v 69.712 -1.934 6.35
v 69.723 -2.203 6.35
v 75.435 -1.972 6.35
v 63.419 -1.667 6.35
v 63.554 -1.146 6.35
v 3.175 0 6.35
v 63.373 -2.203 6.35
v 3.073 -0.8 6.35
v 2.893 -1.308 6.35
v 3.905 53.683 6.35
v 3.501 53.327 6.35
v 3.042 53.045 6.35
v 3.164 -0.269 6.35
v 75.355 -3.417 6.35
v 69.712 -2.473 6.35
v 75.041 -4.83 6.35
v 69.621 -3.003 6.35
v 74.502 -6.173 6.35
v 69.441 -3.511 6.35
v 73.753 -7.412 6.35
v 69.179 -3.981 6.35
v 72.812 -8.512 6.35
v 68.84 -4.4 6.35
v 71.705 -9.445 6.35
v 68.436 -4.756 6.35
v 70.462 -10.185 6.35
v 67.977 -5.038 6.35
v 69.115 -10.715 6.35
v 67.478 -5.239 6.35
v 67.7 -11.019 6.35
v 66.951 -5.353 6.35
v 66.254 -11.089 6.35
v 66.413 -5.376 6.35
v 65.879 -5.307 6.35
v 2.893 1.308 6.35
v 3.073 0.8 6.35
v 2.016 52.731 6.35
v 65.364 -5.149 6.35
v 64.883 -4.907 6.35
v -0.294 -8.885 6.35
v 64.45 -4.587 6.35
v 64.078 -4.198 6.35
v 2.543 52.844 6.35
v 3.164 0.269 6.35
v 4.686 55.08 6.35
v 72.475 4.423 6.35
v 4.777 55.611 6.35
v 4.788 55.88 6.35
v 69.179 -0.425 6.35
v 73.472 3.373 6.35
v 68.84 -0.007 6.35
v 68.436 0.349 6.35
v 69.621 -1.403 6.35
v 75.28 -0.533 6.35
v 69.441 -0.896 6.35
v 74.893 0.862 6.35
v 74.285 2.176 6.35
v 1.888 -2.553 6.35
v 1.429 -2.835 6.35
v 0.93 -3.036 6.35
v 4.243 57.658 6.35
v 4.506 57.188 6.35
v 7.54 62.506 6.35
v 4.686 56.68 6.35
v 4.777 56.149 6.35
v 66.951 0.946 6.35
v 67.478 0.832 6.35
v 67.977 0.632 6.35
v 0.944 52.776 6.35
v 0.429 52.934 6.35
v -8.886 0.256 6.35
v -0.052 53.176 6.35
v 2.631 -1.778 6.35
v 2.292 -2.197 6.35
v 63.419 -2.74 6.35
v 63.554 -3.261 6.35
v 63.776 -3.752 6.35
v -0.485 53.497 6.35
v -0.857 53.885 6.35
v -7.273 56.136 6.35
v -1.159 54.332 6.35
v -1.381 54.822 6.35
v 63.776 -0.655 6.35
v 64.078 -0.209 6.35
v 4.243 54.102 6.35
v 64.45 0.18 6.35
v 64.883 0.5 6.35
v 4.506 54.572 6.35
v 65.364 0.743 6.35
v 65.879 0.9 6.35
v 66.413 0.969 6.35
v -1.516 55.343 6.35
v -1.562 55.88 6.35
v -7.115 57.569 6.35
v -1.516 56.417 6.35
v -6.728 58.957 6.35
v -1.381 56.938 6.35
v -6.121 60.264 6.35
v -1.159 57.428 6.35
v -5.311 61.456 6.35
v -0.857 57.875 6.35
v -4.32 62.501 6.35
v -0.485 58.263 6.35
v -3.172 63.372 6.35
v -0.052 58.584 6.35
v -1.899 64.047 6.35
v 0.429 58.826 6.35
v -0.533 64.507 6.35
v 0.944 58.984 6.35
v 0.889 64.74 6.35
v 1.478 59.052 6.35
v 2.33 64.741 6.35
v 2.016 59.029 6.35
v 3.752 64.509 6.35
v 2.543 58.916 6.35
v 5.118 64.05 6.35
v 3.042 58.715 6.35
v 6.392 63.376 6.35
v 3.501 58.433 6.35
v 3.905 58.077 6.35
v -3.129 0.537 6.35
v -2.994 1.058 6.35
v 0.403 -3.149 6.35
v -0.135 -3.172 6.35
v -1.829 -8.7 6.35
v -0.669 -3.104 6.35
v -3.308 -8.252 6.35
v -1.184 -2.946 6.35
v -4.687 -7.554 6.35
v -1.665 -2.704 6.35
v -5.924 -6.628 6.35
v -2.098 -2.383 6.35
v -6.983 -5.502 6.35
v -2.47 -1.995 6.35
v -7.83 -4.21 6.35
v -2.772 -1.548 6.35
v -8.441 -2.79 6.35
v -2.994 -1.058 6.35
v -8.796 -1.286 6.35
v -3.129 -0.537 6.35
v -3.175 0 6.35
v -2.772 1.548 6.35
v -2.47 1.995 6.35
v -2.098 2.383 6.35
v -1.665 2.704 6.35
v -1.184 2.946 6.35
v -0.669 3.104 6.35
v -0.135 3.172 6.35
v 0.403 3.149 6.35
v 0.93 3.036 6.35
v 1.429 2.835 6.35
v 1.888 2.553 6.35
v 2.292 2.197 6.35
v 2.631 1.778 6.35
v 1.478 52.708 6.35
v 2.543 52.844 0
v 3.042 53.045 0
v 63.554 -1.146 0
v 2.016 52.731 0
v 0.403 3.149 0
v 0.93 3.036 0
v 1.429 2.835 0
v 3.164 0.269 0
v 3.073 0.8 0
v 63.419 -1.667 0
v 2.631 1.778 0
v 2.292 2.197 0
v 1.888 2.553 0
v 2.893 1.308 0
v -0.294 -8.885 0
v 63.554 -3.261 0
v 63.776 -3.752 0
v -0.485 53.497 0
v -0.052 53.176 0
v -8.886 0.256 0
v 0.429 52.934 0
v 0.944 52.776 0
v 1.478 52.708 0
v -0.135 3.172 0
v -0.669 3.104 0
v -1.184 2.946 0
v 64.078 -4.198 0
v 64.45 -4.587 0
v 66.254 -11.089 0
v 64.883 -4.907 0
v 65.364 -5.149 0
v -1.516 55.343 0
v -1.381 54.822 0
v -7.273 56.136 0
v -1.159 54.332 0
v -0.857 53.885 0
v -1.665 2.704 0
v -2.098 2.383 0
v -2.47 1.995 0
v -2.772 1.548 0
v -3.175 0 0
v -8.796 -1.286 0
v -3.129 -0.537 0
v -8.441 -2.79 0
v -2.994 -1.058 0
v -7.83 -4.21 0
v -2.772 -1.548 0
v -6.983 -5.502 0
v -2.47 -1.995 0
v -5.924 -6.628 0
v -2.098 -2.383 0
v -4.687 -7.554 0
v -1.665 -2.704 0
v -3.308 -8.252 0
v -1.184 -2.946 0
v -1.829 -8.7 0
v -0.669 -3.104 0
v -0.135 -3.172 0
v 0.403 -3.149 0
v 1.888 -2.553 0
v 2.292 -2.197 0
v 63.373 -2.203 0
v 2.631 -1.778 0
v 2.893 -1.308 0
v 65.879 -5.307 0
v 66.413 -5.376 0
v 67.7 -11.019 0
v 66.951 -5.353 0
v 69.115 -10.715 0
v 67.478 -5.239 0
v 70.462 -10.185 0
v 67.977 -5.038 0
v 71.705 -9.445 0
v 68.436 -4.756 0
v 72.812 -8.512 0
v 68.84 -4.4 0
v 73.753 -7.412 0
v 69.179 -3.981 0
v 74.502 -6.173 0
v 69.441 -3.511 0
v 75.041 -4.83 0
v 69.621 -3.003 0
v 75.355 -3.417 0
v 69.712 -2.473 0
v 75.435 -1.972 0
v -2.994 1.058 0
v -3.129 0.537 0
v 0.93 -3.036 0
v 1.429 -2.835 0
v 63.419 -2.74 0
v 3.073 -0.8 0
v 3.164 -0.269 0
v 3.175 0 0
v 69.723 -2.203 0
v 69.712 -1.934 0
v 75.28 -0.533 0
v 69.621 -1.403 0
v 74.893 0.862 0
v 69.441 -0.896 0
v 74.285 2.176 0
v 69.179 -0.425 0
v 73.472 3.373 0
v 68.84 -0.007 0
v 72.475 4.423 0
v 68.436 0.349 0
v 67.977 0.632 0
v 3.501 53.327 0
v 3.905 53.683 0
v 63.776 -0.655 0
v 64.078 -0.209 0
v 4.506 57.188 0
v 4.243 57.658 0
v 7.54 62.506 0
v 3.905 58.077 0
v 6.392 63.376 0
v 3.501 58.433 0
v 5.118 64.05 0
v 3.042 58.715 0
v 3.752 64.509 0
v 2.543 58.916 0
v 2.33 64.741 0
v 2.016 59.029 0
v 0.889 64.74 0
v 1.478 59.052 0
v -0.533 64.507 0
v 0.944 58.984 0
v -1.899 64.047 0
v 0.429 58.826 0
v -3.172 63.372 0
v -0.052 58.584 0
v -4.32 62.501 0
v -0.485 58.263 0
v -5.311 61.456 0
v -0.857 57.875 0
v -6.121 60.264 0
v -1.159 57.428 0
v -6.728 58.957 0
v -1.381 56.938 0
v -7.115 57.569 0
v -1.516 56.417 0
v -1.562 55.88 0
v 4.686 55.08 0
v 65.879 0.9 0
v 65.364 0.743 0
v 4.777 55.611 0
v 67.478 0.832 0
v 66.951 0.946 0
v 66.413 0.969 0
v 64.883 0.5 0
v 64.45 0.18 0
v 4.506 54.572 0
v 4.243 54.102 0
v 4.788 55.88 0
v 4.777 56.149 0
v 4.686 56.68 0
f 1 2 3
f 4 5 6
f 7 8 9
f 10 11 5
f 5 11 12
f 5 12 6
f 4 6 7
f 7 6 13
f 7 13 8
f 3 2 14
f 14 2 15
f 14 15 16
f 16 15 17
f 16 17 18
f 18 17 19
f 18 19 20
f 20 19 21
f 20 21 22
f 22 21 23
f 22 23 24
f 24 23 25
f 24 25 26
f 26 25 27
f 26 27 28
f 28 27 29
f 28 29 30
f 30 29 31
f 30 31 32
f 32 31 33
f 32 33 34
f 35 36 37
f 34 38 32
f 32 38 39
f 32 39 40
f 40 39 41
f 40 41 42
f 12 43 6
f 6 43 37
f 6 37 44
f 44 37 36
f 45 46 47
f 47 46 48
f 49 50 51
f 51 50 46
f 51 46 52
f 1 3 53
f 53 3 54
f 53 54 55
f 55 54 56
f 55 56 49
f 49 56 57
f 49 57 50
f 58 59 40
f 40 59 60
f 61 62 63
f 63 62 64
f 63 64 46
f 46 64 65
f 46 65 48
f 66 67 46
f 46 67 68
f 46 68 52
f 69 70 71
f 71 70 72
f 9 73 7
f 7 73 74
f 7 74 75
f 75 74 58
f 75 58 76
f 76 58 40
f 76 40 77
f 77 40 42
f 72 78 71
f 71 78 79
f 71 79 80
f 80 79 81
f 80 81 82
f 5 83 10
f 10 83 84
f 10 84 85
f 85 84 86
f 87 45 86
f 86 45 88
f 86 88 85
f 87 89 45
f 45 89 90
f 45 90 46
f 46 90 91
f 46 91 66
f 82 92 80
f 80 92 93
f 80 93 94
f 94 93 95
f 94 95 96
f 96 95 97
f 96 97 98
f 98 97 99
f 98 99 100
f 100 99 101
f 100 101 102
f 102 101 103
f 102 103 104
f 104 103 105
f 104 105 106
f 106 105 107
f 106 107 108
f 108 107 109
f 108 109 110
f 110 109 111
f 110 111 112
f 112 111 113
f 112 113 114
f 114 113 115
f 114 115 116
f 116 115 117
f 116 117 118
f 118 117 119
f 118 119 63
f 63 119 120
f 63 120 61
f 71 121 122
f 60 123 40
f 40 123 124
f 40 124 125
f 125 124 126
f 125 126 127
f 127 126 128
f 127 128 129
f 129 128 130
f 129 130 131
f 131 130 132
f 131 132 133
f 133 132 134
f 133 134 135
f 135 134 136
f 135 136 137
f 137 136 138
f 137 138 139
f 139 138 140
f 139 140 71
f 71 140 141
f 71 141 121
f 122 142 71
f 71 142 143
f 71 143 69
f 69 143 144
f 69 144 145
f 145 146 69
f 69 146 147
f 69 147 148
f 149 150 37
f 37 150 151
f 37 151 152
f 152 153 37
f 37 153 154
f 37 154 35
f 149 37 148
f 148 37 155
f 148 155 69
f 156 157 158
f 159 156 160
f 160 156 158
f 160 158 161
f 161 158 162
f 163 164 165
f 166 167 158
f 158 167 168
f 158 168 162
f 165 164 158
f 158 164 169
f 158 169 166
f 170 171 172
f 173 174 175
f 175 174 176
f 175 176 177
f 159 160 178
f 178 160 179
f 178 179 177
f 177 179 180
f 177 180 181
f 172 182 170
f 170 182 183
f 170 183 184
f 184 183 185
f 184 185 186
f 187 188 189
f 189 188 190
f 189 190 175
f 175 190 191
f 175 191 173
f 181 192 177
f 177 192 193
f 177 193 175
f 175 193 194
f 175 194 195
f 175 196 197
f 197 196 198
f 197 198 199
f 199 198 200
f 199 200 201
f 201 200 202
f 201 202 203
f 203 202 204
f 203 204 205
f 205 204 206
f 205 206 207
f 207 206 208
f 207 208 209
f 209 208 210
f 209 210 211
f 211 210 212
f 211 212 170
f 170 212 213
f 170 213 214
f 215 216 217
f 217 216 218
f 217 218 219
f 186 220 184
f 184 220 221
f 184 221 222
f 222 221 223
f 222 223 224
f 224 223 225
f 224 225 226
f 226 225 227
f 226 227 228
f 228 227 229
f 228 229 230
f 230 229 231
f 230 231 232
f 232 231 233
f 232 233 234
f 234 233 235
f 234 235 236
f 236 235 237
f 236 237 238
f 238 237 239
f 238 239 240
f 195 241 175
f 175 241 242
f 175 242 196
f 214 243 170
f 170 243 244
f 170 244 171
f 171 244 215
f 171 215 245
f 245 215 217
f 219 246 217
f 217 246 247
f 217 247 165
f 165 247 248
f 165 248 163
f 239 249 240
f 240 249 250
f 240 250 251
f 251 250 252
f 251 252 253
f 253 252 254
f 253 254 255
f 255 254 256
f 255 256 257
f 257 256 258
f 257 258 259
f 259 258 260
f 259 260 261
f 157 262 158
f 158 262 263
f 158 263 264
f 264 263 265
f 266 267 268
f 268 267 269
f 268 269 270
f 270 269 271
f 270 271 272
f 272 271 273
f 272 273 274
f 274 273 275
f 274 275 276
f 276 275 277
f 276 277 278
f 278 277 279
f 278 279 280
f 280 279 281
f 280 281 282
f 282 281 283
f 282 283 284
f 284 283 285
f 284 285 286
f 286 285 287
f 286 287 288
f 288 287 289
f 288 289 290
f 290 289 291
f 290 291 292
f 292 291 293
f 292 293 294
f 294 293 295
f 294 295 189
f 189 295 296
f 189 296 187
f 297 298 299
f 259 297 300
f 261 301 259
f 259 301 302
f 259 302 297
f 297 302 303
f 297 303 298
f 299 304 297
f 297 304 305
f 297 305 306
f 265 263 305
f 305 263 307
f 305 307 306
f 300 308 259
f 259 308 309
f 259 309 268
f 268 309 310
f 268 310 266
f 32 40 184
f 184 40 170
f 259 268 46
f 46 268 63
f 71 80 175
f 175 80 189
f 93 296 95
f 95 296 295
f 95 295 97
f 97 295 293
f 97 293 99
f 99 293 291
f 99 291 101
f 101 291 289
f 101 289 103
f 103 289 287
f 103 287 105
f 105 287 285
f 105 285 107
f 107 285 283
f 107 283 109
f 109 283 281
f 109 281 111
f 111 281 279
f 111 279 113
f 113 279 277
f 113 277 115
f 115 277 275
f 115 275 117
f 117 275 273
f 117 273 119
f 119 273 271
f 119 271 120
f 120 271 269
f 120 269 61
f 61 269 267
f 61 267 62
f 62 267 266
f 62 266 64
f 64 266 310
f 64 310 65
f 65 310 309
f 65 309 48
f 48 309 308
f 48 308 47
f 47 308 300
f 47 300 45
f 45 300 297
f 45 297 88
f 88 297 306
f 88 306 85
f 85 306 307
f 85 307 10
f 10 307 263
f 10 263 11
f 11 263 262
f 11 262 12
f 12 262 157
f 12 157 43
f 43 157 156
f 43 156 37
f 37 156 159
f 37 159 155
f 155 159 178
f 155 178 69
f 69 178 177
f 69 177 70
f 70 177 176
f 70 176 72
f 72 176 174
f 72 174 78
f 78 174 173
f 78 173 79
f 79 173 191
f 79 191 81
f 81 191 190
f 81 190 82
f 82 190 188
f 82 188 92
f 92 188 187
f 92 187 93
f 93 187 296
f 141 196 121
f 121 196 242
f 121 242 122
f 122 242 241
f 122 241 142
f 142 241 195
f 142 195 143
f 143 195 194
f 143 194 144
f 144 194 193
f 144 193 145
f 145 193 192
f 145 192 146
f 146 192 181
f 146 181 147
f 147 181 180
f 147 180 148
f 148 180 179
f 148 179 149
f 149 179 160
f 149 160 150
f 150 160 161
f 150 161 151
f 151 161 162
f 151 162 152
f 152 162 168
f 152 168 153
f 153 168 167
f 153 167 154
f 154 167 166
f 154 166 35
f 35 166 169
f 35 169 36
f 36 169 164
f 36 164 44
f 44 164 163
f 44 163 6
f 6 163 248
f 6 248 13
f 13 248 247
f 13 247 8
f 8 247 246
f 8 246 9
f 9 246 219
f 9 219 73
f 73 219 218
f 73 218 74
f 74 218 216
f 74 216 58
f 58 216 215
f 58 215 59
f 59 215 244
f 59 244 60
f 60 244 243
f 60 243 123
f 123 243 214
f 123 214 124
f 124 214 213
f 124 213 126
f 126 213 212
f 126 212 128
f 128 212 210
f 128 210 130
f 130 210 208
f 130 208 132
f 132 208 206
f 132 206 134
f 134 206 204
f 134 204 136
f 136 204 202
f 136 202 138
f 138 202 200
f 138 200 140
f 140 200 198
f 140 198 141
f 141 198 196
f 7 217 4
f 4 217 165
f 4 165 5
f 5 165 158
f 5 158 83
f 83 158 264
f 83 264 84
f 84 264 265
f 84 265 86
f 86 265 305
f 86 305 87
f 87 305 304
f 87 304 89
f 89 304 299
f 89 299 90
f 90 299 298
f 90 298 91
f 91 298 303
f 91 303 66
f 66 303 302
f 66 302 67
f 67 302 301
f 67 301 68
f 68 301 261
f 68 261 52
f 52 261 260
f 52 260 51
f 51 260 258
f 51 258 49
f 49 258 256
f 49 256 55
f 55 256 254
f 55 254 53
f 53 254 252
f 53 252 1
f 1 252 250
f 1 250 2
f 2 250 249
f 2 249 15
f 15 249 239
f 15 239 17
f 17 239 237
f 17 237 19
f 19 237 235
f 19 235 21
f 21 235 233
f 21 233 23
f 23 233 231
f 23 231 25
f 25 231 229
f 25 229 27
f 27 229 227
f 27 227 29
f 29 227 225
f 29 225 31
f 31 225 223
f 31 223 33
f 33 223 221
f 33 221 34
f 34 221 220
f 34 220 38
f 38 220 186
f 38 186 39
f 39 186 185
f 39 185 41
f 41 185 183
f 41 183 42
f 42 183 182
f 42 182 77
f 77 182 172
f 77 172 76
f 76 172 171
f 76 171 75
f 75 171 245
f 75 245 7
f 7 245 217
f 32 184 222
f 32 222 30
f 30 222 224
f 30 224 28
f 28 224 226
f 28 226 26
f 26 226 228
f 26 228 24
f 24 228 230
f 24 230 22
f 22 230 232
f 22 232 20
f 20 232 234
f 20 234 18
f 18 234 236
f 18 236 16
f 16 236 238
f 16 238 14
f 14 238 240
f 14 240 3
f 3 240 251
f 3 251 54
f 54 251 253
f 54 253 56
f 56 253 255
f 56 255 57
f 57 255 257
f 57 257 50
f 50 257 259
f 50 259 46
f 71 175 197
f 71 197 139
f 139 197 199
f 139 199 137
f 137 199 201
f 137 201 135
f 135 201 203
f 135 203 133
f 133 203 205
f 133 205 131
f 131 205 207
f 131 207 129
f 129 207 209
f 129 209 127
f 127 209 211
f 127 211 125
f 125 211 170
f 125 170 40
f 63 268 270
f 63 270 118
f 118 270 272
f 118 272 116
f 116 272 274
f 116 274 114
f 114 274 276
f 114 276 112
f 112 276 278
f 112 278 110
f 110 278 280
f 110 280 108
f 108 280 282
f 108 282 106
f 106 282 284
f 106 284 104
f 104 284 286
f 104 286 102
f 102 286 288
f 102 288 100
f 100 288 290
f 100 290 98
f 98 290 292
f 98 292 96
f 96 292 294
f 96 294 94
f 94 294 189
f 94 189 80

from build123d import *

# Parameters (mm, degrees)
SKETCH1_R           = 3.175
BOSS_EXTRUDE1_DEPTH = 6.35
FILLET1_R           = 8.89


with BuildPart() as part:
    # Sketch1 → Boss-Extrude1 (new body)
    with BuildSketch(Plane.XY):
        Polygon((-9.141712801, -8.592188489), (-6.721283646, 75.262377261), (90.721451865, -11.8986691), align=None)
        with Locations((1.612954285, 55.88)):
            Circle(SKETCH1_R, mode=Mode.SUBTRACT)
        Circle(SKETCH1_R, mode=Mode.SUBTRACT)
        with Locations((66.548, -2.203411763)):
            Circle(SKETCH1_R, mode=Mode.SUBTRACT)
    extrude(amount=BOSS_EXTRUDE1_DEPTH)

    # Fillet1
    fillet1_edges = [part.edges().sort_by_distance(p)[0] for p in [
        (-9.141712801, -8.592188489, 3.175),
        (-6.721283646, 75.262377261, 3.175),
        (90.721451865, -11.8986691, 3.175),
    ]]
    fillet(fillet1_edges, radius=FILLET1_R)


solid = part.part
